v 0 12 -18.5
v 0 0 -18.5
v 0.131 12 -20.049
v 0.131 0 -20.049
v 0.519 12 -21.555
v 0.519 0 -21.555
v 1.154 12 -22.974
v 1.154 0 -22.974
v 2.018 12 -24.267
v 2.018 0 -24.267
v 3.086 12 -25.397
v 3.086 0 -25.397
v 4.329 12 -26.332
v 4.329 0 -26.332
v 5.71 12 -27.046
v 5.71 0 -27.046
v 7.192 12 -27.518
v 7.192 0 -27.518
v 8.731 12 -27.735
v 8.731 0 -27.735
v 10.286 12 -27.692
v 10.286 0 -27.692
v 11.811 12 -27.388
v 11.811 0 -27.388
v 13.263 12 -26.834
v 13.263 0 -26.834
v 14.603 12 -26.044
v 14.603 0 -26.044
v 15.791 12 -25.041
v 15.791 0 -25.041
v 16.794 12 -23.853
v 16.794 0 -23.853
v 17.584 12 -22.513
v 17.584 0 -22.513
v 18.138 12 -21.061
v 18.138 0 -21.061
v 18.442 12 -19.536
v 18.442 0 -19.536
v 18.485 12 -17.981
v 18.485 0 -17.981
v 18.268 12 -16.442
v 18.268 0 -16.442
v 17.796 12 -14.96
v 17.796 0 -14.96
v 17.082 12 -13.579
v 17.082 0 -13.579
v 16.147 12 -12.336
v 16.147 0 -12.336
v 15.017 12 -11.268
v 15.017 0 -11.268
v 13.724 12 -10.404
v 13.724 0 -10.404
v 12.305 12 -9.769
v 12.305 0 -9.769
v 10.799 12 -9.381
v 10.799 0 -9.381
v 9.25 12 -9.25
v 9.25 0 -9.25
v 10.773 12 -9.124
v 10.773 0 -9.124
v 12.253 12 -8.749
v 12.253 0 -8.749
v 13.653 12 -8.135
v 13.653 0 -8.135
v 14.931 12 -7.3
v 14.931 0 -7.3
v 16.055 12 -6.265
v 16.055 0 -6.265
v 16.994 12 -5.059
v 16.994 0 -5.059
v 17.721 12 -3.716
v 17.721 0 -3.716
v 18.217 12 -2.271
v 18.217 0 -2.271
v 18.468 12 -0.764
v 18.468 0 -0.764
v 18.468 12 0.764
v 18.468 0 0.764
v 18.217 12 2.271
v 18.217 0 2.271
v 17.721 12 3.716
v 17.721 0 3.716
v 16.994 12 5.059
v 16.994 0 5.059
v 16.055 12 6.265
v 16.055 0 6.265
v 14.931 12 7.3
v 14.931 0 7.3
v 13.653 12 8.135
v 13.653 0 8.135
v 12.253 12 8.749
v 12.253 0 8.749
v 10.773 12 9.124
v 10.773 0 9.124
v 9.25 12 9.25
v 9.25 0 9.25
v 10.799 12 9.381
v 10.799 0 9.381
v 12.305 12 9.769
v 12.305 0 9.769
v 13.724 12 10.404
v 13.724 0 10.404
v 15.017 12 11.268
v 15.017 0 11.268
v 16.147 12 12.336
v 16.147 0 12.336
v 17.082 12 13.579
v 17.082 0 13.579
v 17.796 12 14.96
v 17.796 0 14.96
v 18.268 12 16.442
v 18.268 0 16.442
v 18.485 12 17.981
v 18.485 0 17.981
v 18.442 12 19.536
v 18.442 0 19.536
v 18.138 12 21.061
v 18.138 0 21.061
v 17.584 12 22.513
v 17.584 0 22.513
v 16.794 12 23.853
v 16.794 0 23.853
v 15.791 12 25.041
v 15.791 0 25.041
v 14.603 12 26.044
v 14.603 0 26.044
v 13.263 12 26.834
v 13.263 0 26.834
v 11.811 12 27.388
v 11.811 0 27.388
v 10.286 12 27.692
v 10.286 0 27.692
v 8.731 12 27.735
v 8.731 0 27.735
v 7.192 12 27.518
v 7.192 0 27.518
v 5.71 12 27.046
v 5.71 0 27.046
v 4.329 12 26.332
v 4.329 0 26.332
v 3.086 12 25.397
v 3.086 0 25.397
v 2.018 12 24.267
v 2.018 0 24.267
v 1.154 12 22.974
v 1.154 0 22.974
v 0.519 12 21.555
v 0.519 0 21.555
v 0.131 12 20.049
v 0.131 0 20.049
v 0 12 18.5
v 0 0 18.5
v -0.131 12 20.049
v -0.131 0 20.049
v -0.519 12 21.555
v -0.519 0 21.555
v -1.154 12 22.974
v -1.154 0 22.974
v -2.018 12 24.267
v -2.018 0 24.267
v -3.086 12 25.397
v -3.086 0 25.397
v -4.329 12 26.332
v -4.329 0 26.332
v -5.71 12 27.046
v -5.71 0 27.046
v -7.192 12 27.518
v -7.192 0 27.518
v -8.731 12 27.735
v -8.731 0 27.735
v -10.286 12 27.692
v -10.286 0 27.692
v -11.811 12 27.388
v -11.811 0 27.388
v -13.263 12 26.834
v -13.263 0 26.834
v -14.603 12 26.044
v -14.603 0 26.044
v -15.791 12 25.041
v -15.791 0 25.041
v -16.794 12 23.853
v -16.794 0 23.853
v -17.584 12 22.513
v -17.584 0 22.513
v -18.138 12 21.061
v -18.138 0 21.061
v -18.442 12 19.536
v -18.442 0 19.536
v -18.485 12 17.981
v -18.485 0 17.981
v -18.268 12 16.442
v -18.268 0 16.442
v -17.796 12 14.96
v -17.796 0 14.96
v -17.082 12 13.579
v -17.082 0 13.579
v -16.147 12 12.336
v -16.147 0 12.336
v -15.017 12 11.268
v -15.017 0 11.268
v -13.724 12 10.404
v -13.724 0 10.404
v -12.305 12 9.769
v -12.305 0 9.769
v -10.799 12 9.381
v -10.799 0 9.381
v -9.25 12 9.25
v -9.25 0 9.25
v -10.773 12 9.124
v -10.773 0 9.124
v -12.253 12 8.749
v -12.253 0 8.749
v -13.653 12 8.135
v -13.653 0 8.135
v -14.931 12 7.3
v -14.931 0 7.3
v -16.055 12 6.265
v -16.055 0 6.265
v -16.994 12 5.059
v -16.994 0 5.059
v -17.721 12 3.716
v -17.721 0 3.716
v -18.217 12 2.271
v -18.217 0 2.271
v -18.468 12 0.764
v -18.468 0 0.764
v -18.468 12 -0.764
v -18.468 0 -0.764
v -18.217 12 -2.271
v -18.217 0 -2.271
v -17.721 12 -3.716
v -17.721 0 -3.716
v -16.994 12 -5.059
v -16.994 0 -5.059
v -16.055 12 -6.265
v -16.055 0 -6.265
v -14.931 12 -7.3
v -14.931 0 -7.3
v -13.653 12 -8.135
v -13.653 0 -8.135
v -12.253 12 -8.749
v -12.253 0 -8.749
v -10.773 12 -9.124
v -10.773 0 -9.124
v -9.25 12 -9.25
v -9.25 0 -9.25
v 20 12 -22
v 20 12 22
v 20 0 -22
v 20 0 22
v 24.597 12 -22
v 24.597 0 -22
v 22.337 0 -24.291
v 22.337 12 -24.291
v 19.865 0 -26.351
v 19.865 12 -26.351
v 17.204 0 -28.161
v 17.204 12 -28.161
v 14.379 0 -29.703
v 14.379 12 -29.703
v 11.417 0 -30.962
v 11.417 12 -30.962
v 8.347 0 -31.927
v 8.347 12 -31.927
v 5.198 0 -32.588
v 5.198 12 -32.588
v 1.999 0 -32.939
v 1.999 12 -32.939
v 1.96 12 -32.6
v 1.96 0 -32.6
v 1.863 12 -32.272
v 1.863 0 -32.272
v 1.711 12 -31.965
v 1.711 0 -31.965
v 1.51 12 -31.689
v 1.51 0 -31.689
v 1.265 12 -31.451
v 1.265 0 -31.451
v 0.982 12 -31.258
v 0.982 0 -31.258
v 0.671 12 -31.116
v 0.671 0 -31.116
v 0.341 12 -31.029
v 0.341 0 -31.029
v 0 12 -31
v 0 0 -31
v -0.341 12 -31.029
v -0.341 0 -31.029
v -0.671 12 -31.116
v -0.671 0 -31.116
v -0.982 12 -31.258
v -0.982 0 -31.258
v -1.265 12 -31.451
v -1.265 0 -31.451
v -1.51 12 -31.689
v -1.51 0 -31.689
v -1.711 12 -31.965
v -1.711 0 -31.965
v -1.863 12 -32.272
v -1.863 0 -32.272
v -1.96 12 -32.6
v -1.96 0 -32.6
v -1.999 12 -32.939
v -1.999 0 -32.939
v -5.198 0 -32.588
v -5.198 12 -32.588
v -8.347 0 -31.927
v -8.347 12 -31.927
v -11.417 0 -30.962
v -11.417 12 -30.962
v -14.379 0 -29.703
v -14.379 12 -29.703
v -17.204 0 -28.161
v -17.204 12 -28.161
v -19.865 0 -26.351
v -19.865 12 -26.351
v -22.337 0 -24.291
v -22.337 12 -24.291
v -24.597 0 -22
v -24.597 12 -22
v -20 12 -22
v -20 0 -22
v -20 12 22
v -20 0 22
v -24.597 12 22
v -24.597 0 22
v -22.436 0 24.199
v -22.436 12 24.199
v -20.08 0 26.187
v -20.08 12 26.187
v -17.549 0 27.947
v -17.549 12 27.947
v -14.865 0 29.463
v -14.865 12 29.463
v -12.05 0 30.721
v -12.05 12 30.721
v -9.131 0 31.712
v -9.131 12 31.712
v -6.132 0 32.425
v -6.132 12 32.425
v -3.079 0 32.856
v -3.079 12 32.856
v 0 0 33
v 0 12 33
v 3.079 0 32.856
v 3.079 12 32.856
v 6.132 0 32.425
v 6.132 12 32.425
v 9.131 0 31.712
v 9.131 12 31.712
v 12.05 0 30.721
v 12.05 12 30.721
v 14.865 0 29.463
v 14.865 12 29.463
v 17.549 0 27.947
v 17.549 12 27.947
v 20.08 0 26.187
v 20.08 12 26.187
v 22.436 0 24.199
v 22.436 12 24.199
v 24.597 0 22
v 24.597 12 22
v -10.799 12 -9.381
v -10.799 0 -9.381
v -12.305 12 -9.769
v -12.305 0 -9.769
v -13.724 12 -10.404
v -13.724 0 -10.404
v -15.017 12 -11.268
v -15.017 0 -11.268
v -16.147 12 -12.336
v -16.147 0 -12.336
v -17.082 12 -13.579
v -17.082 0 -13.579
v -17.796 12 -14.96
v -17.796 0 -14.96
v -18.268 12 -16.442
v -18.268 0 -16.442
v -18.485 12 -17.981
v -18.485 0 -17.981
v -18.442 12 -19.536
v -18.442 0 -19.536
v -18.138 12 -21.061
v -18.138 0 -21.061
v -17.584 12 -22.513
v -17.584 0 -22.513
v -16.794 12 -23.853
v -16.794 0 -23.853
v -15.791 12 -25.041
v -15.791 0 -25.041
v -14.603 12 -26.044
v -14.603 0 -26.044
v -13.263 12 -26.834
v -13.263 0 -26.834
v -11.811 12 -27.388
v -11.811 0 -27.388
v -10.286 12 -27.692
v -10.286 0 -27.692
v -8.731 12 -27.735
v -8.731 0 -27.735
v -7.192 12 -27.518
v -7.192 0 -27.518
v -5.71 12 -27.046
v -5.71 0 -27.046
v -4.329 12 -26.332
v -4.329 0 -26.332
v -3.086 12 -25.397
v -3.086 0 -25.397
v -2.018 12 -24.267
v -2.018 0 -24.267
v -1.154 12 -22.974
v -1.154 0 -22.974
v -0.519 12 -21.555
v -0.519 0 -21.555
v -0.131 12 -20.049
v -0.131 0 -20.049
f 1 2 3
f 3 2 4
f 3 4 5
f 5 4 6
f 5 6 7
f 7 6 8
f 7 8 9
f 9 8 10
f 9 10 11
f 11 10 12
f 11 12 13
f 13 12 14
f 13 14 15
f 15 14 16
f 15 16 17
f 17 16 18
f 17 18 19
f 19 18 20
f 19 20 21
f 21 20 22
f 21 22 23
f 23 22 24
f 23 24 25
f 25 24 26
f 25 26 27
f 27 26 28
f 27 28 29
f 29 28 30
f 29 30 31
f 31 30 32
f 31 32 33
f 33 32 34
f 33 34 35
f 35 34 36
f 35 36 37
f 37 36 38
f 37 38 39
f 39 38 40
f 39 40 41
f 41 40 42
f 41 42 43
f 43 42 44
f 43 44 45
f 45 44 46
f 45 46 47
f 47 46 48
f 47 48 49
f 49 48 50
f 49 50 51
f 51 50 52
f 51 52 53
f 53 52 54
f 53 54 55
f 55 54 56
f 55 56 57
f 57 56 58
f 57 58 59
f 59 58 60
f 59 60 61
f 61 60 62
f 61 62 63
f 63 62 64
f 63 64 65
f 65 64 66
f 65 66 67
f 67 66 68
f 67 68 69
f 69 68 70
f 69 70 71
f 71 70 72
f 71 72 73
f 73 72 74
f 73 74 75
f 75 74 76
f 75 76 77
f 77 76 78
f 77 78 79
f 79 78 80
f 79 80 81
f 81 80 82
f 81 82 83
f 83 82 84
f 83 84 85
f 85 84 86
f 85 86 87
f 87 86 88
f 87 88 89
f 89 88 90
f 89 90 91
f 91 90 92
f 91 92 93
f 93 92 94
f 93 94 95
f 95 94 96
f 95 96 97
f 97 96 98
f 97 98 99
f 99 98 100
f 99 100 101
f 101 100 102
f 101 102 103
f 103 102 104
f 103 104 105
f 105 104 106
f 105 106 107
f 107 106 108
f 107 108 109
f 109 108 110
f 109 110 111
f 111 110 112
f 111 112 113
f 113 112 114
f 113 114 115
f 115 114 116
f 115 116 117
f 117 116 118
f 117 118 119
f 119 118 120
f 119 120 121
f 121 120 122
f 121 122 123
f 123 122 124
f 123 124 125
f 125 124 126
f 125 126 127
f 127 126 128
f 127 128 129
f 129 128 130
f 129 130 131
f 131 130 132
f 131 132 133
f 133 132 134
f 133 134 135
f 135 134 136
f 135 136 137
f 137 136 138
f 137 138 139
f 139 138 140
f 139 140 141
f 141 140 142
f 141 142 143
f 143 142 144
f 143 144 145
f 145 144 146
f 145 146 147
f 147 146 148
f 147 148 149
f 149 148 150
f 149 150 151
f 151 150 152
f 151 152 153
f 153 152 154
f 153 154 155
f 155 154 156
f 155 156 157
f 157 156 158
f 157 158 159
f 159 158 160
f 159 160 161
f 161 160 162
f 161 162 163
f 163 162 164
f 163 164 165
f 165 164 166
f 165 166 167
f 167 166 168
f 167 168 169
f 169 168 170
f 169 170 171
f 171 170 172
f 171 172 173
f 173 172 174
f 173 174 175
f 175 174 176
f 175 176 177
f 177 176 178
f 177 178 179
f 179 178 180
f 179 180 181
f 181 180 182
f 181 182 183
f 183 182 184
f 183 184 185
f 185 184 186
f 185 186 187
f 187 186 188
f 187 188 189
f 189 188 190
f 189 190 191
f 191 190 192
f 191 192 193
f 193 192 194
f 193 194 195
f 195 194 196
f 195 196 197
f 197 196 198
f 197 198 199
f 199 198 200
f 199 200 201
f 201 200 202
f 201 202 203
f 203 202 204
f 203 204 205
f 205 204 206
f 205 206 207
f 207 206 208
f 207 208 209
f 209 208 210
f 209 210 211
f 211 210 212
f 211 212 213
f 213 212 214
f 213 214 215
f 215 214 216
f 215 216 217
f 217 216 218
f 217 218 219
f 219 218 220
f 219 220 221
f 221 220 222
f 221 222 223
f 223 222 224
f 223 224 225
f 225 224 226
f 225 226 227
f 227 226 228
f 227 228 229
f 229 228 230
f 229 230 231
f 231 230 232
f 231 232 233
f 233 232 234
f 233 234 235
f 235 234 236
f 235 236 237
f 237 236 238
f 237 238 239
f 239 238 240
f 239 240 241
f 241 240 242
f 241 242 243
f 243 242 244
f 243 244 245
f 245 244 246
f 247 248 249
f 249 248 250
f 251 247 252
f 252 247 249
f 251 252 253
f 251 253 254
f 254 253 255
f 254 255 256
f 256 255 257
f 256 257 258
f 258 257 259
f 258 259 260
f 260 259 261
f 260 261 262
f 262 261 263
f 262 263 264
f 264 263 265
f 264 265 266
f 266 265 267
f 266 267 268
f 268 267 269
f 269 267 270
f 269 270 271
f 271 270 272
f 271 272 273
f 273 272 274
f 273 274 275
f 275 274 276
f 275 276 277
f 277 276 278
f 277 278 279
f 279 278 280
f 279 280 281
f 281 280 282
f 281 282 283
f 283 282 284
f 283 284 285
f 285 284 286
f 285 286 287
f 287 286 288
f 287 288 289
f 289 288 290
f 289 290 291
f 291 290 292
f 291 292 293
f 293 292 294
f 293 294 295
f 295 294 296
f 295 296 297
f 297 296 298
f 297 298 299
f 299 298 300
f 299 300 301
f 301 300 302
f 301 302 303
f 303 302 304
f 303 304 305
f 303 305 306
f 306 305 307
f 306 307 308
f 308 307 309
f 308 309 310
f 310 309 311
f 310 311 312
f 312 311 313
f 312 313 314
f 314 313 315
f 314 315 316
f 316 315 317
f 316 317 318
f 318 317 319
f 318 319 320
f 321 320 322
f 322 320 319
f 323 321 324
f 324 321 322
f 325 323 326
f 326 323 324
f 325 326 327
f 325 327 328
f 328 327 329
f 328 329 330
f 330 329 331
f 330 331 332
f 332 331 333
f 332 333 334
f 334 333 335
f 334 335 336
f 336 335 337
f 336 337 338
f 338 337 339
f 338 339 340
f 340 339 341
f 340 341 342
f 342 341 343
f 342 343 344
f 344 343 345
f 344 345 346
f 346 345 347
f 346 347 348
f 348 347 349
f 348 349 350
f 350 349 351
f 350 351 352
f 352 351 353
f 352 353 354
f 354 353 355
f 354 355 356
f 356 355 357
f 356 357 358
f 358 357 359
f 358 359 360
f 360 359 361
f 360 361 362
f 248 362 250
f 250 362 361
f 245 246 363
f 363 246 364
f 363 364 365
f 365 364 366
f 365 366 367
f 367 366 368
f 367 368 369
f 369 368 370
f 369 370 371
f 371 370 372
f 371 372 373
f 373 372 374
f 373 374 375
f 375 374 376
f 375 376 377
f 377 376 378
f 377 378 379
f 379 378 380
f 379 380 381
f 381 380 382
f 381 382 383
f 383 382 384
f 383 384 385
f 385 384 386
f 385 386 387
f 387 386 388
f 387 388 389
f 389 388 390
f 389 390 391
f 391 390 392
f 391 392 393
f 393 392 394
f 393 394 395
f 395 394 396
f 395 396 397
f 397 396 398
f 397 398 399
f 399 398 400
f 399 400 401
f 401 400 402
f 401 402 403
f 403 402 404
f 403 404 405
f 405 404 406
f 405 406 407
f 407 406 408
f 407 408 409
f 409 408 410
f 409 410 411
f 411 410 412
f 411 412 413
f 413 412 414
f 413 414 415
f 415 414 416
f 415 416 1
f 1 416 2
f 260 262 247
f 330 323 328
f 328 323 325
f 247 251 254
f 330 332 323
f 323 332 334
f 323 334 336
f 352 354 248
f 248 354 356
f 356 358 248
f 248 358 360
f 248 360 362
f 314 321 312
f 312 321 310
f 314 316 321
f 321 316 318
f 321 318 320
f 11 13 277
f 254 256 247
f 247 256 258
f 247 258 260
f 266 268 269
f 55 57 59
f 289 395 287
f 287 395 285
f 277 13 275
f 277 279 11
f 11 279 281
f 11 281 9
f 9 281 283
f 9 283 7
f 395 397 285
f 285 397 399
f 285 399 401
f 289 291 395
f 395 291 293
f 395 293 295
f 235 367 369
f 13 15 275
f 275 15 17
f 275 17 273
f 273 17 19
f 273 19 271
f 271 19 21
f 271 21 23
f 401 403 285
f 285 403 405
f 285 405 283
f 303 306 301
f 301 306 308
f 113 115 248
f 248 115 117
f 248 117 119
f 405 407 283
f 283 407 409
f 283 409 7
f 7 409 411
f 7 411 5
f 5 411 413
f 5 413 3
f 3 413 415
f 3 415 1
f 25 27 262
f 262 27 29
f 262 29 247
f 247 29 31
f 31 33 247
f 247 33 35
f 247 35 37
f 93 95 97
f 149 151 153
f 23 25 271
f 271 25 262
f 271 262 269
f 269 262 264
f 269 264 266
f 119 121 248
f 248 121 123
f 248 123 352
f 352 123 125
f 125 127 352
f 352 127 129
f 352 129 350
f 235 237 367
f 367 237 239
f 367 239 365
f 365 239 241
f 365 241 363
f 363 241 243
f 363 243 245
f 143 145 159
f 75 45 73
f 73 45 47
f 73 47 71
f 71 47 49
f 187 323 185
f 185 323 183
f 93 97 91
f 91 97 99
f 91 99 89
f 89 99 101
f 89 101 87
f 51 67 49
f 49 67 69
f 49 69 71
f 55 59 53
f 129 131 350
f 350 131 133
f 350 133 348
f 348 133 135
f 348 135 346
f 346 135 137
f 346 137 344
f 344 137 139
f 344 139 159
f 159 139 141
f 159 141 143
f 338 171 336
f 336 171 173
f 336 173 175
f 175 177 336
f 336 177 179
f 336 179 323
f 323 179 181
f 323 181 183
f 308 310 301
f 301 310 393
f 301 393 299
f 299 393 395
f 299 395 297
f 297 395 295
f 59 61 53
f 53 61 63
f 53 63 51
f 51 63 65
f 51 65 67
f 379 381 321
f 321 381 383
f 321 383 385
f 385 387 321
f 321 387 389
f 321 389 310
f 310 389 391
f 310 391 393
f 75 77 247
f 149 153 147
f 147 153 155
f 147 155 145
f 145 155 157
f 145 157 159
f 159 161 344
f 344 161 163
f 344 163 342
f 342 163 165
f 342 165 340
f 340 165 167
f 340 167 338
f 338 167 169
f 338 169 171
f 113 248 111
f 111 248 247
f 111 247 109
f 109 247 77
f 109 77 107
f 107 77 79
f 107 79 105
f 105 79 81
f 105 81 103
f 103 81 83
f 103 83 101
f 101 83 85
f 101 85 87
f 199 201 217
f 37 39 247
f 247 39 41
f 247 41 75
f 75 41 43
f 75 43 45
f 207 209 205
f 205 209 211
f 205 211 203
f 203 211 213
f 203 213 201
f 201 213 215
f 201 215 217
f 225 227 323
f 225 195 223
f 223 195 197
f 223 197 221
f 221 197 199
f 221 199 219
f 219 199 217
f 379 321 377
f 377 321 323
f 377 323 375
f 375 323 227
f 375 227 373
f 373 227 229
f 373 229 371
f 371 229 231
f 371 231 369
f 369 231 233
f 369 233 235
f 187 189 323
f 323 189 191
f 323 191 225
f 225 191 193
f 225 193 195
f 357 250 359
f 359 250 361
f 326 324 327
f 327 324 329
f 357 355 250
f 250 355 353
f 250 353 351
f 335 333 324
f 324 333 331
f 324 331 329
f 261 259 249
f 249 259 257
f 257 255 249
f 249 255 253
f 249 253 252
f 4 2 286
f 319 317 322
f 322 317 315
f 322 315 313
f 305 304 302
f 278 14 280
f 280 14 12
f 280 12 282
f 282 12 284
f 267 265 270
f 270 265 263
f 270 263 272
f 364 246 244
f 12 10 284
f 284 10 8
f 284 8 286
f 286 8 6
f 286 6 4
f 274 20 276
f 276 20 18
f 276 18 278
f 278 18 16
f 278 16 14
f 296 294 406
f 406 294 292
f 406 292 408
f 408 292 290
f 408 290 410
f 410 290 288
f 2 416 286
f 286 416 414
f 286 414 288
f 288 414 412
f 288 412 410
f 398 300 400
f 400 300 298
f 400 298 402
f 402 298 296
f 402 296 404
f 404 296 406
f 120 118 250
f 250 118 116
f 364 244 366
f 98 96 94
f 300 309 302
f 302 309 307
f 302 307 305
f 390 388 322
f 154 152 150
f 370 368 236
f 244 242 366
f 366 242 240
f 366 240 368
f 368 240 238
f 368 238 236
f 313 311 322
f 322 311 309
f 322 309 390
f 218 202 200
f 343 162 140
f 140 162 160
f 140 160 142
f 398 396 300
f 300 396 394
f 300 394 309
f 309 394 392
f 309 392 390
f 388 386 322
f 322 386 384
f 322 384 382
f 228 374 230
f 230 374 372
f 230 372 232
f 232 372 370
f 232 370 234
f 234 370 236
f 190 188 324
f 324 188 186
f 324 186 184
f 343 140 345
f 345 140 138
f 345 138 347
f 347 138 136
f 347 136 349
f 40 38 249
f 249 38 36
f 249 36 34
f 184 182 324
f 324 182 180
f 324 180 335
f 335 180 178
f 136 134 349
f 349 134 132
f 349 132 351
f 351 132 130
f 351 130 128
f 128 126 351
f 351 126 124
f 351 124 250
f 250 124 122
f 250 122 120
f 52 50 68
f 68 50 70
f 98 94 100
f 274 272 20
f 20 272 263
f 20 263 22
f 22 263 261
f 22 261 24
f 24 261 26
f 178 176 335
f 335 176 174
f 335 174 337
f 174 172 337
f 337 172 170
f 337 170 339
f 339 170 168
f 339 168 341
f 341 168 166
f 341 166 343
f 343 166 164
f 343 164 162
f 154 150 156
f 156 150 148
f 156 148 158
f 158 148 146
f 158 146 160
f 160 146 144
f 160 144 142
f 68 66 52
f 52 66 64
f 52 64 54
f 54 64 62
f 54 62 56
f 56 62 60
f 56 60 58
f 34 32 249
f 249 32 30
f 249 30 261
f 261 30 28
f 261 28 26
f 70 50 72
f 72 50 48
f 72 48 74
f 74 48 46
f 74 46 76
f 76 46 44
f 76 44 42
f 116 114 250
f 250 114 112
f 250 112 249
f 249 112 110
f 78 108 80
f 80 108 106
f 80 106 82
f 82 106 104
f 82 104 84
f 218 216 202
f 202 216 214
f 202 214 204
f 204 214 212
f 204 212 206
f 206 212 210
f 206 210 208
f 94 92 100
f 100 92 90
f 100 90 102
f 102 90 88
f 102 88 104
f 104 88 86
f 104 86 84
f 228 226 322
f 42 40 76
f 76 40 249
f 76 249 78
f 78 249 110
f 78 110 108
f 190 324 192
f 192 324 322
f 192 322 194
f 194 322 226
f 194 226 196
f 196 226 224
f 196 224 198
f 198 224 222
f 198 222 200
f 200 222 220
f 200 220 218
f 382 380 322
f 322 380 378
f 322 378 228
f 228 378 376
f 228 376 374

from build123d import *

# Parameters (mm, degrees)
Y_KSEKLIK_EKSTR_ZYON1_DEPTH = 12


with BuildPart() as part:
    # Çizim1 → Yükseklik-Ekstrüzyon1 (new body)
    with BuildSketch(Plane(origin=(0, 0, 0), x_dir=(1, 0, 0), z_dir=(0, 1, 0))):
        with BuildLine():
            Line((20, 0), (18.5, 0))
            ThreePointArc((18.5, 0), (15.790737726, -6.540737726), (9.25, -9.25))
            ThreePointArc((9.25, -9.25), (15.790737726, -25.040737726), (0, -18.5))
            ThreePointArc((0, -18.5), (-15.790737726, -25.040737726), (-9.25, -9.25))
            ThreePointArc((-9.25, -9.25), (-15.790737726, -6.540737726), (-18.5, 0))
            Line((-18.5, 0), (-20, 0))
            Line((-20, 0), (-20, -22))
            Line((-20, -22), (-24.596747752, -22))
            ThreePointArc((-24.596747752, -22), (0, -33), (24.596747752, -22))
            Line((24.596747752, -22), (20, -22))
            Line((20, -22), (20, 0))
        make_face()
        with BuildLine():
            ThreePointArc((9.25, 9.25), (15.790737726, 6.540737726), (18.5, 0))
            Line((18.5, 0), (20, 0))
            Line((20, 0), (20, 22))
            Line((20, 22), (24.596747752, 22))
            ThreePointArc((24.596747752, 22), (14.378877514, 29.702657818), (1.999081515, 32.939393939))
            ThreePointArc((1.999081515, 32.939393939), (0, 31), (-1.999081515, 32.939393939))
            ThreePointArc((-1.999081515, 32.939393939), (-14.378877514, 29.702657818), (-24.596747752, 22))
            Line((-24.596747752, 22), (-20, 22))
            Line((-20, 22), (-20, 0))
            Line((-20, 0), (-18.5, 0))
            ThreePointArc((-18.5, 0), (-15.790737726, 6.540737726), (-9.25, 9.25))
            ThreePointArc((-9.25, 9.25), (-15.790737726, 25.040737726), (0, 18.5))
            ThreePointArc((0, 18.5), (15.790737726, 25.040737726), (9.25, 9.25))
        make_face()
    extrude(amount=Y_KSEKLIK_EKSTR_ZYON1_DEPTH)


solid = part.part
